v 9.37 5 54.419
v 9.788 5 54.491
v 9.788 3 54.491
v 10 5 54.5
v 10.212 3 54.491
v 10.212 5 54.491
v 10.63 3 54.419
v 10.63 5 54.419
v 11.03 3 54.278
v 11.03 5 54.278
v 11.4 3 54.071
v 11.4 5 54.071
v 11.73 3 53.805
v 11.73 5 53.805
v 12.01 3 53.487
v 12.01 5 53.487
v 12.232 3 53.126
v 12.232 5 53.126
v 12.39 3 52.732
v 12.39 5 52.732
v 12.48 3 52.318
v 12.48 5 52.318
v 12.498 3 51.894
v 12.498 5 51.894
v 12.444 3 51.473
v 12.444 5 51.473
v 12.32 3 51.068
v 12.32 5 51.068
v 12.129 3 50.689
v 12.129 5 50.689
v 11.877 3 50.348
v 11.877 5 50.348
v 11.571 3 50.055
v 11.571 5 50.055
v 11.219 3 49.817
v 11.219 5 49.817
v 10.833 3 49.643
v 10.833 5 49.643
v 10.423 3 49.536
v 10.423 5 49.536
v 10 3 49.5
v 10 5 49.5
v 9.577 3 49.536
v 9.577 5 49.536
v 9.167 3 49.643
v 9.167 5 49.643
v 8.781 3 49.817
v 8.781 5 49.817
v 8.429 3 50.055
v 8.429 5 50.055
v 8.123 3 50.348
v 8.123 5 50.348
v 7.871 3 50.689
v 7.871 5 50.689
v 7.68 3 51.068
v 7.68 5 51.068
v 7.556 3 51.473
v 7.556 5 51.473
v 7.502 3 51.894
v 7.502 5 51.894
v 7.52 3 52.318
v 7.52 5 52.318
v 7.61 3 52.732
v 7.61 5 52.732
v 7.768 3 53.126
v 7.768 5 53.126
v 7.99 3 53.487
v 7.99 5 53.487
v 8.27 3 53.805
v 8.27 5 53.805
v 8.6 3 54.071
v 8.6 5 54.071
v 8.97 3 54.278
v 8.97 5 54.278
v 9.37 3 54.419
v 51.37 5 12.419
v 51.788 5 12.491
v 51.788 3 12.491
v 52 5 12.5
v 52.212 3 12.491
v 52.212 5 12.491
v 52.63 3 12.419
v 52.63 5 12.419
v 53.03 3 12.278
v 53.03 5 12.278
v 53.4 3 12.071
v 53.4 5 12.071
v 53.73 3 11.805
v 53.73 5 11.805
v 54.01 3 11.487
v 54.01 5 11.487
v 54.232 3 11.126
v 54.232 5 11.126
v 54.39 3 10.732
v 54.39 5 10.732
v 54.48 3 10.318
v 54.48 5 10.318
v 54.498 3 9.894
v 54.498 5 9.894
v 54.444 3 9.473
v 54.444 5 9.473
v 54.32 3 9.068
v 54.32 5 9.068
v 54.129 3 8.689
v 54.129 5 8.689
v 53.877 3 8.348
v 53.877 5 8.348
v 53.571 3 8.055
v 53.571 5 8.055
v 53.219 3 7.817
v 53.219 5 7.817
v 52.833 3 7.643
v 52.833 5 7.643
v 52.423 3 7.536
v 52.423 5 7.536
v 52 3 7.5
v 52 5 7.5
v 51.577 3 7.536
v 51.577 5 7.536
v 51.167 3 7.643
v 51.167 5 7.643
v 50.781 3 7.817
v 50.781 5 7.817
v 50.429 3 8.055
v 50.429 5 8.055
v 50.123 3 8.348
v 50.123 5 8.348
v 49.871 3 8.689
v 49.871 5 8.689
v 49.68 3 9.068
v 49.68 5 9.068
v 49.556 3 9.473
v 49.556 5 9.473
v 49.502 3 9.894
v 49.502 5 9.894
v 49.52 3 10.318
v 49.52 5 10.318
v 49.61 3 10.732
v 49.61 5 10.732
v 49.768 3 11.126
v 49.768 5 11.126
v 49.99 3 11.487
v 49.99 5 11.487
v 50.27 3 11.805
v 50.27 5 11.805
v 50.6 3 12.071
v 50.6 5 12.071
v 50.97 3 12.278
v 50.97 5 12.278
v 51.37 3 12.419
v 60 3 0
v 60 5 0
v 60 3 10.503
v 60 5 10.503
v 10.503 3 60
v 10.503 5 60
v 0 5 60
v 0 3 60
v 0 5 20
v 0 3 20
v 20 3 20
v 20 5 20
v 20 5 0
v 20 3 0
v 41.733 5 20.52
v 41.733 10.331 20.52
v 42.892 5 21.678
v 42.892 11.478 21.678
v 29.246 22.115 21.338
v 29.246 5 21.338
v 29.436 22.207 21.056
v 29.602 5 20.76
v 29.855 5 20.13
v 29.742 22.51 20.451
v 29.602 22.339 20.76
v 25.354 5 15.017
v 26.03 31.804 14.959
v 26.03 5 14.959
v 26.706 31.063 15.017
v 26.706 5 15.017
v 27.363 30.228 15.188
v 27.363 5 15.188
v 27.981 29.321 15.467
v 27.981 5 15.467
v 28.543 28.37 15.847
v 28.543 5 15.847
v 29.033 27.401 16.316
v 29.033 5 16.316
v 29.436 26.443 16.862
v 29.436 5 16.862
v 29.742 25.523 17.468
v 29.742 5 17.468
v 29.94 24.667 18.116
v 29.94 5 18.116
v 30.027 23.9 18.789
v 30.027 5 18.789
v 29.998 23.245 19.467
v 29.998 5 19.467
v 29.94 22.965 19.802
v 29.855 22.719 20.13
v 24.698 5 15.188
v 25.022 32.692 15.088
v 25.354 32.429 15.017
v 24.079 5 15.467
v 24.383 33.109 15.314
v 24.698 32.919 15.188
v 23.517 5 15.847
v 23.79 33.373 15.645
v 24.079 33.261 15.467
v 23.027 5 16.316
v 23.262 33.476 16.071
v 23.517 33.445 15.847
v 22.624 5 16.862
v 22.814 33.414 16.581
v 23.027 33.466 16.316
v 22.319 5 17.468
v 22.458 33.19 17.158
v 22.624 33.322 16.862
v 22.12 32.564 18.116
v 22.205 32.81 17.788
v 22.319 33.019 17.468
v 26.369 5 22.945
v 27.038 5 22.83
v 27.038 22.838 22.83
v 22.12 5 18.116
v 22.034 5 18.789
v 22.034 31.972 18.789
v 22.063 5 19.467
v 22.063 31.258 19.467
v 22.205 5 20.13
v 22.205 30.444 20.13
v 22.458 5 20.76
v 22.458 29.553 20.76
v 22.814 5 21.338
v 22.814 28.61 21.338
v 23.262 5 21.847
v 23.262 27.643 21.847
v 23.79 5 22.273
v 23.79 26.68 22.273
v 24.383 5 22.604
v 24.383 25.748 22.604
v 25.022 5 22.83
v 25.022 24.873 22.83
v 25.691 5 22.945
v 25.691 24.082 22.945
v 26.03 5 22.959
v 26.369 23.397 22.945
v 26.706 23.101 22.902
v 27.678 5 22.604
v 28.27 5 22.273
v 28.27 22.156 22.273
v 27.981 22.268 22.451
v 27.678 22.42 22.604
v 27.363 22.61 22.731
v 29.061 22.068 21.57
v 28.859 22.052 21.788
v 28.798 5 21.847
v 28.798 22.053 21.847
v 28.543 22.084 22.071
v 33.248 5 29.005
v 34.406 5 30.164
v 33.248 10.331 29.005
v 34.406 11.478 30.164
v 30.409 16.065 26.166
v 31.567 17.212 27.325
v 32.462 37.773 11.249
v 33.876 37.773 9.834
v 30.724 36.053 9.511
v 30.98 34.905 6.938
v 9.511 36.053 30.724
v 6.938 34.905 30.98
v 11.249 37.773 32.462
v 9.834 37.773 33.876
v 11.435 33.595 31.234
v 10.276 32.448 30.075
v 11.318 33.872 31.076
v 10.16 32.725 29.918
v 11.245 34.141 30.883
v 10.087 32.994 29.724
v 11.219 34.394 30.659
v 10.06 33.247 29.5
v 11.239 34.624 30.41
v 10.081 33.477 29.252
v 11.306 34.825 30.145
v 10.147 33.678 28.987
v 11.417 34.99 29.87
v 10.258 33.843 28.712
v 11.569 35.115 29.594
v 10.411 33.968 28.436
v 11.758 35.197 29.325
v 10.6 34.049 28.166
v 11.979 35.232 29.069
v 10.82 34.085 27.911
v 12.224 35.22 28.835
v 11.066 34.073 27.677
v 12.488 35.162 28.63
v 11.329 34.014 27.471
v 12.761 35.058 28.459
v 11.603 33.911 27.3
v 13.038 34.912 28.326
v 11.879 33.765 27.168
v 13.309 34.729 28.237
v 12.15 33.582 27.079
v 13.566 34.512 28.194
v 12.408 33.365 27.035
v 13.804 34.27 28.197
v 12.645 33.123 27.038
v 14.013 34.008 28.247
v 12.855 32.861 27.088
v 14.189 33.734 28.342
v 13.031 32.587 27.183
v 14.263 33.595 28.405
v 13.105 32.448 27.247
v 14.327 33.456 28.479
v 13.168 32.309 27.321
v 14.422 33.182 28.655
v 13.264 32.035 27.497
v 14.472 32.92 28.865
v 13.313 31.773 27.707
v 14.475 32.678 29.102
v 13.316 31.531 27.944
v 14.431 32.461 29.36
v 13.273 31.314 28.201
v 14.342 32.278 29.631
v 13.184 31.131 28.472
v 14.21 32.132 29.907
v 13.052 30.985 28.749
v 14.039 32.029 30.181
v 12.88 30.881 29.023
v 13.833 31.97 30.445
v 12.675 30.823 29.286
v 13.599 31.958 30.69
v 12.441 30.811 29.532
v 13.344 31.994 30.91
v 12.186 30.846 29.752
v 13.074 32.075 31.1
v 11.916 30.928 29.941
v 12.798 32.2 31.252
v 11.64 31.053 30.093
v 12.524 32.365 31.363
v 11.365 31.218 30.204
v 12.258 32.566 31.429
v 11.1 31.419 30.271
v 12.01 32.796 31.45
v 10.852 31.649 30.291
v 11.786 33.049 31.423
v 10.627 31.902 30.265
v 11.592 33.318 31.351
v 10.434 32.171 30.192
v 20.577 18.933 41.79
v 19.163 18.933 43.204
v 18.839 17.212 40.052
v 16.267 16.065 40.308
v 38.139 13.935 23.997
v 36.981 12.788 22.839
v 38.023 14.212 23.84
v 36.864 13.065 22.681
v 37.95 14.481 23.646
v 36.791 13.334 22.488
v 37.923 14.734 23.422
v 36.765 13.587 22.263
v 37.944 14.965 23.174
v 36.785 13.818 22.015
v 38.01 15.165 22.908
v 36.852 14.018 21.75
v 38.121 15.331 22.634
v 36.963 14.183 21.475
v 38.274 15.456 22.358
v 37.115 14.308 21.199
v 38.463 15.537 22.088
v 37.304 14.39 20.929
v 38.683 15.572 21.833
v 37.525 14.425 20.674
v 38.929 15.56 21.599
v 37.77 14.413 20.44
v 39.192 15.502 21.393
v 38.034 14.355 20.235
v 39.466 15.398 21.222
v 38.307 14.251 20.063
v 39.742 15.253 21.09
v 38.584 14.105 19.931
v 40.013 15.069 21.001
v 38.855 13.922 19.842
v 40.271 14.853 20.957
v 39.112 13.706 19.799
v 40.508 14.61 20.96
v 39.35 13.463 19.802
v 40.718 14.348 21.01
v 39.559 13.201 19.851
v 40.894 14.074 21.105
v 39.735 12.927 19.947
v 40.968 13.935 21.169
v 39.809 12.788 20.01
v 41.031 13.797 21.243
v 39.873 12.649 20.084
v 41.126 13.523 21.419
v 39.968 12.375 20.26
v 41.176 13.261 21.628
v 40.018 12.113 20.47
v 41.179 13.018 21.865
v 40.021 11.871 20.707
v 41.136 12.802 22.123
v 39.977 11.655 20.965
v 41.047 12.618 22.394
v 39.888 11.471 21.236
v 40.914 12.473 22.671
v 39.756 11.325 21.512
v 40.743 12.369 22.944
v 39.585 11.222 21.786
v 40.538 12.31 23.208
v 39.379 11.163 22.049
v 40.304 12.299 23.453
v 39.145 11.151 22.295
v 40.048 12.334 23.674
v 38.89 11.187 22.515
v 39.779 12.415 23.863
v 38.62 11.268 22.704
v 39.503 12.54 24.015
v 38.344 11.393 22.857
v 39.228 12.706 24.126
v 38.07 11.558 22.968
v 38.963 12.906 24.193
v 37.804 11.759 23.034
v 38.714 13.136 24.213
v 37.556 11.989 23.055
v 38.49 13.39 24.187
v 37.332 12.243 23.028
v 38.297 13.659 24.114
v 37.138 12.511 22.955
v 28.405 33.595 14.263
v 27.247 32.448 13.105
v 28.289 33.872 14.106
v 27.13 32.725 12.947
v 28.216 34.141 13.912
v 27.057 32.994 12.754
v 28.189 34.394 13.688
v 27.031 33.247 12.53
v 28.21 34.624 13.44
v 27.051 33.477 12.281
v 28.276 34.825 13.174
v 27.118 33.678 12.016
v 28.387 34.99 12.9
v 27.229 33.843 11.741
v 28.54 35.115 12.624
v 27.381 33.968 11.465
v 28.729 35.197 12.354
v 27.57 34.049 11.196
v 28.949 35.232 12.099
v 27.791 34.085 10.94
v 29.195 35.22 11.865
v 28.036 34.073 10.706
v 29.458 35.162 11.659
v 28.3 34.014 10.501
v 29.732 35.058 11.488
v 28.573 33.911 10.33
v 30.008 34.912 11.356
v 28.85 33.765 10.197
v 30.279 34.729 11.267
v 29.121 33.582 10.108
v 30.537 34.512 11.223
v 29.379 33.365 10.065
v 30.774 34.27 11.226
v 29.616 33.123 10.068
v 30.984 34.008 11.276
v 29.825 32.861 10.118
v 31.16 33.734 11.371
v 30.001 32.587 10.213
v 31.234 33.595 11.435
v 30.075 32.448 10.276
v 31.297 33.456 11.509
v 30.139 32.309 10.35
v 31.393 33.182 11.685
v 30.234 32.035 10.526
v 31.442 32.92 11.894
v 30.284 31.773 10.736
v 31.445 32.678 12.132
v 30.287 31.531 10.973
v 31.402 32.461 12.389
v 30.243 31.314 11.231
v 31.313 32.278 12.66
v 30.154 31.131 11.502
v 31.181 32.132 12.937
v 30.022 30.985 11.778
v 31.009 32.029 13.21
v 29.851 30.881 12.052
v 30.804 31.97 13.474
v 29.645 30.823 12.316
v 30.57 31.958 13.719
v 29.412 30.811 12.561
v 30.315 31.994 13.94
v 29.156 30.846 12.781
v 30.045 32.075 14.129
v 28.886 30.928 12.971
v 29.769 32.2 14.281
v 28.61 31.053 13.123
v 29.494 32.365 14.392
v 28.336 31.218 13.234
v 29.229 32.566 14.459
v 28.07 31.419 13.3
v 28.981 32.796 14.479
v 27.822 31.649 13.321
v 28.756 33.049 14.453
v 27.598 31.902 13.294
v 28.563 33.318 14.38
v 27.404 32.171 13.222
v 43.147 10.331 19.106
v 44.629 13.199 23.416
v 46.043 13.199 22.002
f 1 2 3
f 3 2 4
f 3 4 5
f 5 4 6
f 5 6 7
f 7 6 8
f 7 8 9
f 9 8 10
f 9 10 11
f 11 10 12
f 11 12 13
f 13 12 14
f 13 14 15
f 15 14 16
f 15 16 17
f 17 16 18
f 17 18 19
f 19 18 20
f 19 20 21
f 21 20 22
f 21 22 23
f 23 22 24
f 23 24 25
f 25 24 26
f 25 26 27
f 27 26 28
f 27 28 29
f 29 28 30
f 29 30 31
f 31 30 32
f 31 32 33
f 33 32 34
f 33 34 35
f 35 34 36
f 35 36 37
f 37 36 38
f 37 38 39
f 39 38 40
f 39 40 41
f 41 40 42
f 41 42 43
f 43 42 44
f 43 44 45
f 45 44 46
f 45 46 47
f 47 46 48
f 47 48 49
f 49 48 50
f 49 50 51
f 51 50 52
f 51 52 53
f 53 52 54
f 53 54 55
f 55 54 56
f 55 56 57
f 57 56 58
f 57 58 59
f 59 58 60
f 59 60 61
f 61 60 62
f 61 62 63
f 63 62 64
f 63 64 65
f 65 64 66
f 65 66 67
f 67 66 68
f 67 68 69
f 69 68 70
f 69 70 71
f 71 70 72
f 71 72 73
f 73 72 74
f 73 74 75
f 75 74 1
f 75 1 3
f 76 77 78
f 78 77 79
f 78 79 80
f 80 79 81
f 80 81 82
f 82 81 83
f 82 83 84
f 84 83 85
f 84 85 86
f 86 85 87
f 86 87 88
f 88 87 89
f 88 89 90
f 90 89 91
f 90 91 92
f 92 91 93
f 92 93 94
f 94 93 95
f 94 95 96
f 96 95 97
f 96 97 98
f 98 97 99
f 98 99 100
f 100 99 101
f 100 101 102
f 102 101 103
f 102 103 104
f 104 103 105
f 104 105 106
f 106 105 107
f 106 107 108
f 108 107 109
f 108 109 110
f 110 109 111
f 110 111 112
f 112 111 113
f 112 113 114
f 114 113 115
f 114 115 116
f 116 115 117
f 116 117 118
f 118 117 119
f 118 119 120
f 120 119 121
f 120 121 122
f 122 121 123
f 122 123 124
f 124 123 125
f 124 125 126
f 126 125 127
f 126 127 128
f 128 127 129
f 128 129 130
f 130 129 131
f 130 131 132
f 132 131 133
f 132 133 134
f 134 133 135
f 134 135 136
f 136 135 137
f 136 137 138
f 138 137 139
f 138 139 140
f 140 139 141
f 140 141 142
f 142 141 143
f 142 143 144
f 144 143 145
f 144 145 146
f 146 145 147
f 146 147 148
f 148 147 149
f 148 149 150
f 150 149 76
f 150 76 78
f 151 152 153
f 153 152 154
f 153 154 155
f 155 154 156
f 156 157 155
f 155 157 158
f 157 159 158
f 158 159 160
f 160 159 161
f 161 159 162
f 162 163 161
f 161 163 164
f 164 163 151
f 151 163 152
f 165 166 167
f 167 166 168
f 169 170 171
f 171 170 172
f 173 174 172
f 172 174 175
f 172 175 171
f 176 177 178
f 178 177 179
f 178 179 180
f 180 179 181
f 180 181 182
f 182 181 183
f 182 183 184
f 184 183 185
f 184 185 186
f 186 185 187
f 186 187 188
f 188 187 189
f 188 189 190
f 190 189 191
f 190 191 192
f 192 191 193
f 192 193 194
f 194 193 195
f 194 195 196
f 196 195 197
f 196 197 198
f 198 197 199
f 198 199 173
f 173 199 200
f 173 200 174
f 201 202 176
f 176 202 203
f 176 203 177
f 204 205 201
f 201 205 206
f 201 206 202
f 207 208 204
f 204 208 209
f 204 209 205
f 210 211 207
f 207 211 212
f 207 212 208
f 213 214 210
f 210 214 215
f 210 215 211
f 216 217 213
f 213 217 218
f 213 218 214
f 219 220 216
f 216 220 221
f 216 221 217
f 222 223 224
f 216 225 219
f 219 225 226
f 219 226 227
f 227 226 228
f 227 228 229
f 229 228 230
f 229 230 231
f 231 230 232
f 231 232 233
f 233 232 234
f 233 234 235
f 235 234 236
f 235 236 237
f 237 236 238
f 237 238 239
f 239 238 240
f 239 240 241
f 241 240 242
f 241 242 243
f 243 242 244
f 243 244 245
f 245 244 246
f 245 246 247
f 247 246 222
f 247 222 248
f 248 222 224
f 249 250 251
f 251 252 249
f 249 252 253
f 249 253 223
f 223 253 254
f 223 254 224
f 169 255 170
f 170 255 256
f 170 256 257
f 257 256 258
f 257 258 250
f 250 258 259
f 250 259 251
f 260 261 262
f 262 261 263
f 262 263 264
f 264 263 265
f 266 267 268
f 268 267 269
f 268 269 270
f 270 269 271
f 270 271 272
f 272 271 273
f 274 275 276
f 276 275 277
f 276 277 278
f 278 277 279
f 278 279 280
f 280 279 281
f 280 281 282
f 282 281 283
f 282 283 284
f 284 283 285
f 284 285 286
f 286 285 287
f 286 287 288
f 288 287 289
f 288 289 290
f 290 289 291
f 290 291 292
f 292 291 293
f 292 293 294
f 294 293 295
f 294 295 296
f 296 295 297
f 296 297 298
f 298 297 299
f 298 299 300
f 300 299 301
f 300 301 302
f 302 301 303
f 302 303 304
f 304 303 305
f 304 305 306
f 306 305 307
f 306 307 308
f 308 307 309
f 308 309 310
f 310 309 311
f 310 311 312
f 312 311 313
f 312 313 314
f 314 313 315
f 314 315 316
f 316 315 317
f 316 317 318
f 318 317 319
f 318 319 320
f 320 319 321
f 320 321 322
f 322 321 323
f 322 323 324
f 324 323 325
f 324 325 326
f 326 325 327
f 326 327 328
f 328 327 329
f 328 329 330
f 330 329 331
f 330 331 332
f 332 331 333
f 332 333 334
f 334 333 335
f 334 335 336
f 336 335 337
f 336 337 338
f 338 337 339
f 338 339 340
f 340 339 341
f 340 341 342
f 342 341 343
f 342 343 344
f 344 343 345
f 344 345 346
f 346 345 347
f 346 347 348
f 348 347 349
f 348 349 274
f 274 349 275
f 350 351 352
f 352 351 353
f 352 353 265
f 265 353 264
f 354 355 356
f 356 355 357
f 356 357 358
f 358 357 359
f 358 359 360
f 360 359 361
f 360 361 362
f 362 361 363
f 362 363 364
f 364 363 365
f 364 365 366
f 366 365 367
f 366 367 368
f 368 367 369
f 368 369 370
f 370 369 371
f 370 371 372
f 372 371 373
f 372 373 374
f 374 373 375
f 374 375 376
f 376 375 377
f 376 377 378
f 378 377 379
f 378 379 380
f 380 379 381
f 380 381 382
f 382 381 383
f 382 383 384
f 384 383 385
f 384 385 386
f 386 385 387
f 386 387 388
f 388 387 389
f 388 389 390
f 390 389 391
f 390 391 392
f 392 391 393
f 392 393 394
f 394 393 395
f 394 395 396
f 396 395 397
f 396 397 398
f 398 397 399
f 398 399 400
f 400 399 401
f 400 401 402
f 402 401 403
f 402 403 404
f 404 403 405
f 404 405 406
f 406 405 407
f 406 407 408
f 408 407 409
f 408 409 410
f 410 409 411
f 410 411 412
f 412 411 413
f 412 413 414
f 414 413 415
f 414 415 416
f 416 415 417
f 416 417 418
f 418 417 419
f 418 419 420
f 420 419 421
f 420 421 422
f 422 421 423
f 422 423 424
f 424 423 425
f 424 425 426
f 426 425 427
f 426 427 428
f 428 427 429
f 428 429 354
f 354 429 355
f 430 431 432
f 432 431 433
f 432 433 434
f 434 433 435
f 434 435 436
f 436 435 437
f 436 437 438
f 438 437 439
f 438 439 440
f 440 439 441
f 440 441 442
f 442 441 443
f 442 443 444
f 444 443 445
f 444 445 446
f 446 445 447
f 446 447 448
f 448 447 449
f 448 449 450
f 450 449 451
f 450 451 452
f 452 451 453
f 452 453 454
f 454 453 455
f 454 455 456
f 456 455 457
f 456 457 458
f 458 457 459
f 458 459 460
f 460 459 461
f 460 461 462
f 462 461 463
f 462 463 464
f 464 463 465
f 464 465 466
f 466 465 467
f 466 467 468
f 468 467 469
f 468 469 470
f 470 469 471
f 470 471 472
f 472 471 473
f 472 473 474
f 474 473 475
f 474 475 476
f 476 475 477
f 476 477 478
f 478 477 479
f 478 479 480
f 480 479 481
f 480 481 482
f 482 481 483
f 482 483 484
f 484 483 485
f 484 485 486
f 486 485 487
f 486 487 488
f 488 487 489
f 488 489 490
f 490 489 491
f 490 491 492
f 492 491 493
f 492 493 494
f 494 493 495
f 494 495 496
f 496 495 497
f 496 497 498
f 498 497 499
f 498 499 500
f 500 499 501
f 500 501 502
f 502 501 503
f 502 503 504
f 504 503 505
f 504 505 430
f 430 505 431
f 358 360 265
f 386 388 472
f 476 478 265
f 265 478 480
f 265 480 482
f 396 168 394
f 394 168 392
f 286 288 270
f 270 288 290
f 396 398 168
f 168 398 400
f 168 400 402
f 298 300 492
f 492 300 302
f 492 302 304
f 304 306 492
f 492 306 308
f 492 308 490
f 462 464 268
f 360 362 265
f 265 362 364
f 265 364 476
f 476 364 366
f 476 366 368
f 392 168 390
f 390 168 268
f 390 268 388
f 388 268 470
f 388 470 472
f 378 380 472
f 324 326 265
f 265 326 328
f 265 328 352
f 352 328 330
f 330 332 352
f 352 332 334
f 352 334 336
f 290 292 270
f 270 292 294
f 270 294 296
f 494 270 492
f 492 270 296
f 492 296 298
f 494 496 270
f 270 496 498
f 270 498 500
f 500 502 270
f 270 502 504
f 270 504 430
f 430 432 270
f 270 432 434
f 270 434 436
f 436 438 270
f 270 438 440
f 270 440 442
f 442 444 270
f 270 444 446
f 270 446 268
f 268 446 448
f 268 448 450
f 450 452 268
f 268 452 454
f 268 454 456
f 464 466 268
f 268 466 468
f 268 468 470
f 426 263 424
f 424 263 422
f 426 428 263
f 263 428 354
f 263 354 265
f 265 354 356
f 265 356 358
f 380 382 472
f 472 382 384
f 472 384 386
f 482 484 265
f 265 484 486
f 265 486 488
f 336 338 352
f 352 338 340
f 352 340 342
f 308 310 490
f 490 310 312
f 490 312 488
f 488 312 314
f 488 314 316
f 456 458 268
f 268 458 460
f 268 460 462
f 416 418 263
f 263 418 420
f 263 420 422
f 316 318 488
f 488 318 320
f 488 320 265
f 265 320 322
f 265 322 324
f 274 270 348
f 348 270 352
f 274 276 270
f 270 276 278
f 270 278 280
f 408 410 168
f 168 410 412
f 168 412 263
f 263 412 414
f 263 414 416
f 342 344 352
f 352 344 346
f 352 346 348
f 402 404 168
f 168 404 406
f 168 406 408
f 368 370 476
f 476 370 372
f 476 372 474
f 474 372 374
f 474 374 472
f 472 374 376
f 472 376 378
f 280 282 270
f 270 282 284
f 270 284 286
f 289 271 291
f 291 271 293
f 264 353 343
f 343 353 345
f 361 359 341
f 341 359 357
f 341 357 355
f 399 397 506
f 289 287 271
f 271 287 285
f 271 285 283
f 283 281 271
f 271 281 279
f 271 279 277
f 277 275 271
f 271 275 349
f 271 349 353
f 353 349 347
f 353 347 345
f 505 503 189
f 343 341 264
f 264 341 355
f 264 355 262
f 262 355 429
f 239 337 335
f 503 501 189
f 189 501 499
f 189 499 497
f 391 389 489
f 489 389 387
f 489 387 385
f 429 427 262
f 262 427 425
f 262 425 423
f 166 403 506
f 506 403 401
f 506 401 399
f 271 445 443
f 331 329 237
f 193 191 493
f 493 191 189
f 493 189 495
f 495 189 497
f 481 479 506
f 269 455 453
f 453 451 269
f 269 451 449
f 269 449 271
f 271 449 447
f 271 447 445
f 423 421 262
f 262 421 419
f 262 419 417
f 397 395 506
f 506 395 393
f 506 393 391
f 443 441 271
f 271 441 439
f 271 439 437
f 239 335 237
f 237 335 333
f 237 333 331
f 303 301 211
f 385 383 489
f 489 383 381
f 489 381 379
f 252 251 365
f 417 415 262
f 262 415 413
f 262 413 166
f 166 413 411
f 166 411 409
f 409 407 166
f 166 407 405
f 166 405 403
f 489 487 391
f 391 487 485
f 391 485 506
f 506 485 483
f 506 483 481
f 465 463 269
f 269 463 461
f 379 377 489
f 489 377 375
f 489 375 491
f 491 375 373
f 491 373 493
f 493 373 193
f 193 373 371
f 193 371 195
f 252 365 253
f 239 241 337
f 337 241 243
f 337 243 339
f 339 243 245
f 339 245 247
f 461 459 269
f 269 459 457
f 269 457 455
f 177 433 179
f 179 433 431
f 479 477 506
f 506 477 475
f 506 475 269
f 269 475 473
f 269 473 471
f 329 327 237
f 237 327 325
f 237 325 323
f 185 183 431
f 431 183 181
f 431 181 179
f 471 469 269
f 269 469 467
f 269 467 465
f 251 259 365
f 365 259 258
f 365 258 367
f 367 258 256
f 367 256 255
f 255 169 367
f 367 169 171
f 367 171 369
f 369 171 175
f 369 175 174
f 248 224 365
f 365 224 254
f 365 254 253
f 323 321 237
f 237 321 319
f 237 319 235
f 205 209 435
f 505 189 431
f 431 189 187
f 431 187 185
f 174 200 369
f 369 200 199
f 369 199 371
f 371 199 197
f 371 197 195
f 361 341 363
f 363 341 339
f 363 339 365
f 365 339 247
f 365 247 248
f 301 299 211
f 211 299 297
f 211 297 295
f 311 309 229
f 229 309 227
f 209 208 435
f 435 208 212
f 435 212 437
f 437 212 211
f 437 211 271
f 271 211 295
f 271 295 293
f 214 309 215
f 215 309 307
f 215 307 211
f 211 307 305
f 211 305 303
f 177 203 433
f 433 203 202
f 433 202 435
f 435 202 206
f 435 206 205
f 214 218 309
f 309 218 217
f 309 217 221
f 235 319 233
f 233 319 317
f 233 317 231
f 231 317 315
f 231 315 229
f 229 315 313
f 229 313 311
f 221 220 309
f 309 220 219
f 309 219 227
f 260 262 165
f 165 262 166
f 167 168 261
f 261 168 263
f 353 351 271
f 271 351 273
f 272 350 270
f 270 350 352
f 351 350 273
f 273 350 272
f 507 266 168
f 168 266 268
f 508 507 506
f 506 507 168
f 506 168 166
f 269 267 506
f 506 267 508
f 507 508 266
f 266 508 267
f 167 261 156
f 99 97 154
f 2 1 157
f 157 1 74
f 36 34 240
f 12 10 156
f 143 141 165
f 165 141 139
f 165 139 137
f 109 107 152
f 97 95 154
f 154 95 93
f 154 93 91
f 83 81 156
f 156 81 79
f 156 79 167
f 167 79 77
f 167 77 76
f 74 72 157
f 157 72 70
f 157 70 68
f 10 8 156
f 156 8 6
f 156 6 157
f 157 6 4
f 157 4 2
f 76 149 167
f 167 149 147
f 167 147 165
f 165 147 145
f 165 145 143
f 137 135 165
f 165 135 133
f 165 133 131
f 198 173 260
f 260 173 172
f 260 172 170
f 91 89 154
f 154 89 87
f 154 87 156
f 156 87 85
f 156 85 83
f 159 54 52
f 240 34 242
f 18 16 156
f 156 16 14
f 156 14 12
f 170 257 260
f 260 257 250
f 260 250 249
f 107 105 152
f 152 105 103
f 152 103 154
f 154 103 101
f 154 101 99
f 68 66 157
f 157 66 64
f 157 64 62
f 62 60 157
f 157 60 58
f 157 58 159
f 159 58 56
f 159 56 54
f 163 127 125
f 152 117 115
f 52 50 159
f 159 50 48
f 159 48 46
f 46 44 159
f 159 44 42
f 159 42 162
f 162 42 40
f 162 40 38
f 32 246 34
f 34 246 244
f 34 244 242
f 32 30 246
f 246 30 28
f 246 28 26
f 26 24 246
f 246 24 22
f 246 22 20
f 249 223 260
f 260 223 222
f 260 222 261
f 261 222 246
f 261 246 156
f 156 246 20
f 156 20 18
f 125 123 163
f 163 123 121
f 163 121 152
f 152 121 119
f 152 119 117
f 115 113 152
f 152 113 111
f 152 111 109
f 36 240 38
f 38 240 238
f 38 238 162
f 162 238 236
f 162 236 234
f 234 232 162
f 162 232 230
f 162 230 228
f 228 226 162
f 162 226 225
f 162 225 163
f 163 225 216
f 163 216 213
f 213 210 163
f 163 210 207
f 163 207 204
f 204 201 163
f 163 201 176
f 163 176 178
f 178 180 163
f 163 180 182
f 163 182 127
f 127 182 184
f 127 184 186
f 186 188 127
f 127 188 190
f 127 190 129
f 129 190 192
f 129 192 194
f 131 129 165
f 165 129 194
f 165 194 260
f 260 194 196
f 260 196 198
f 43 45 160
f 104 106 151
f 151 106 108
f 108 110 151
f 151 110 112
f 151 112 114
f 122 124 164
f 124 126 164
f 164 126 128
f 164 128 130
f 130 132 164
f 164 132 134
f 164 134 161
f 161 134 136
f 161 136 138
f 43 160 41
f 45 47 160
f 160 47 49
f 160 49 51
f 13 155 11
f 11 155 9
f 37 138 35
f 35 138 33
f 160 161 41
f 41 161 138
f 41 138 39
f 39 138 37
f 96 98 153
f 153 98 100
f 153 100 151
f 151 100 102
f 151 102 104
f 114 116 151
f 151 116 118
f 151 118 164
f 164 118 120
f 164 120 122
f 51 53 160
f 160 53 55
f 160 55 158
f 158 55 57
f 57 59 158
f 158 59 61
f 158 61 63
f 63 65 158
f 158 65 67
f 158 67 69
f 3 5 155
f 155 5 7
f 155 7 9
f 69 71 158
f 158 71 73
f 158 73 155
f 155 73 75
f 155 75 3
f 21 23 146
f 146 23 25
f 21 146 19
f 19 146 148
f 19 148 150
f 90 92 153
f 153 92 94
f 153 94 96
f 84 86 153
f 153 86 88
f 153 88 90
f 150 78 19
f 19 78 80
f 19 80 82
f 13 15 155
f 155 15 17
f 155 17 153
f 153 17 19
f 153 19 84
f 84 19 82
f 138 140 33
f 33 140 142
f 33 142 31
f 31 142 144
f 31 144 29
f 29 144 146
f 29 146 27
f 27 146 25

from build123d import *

# Parameters (mm, degrees)
SKETCH_1_R                  = 2.5
EXTRUDE_1_DEPTH             = 2
SKETCH_2_R                  = 2
EXTRUDE_3_DEPTH             = 2
EXTRUDE_4_REACH             = 93.431
SKETCH_4_R                  = 4
EXTRUDE_5_REACH             = 93.431
EXTRUDE_6_REACH             = 56.956
EXTRUDE_6_DIRECTION_2_DEPTH = 3
SKETCH_7_R                  = 2.5
EXTRUDE_8_DEPTH             = 3
CUT_EXTRUDE_1_DEPTH         = 3


with BuildPart() as part:
    # 草图1 → 凸台-拉伸1 (new body)
    with BuildSketch(Plane(origin=(0, 0, 0), x_dir=(1, 0, 0), z_dir=(0, 1, 0))):
        Polygon((10.502525317, -60), (60, -10.502525317), (60, 0), (20, 0), (20, -20), (0, -20), (0, -60), align=None)
        with Locations(Location((10, -52, 0), (0, 0, 270))):
            Circle(SKETCH_1_R, mode=Mode.SUBTRACT)
        with Locations(Location((52, -10, 0), (0, 0, 270))):
            Circle(SKETCH_1_R, mode=Mode.SUBTRACT)
    extrude(amount=EXTRUDE_1_DEPTH)



with BuildPart() as body_2:
    # 草图2 → 凸台-拉伸3 (new body)
    with BuildSketch(Plane(origin=(24.318415307, 24.081140456, 24.318415307), x_dir=(-0.7071067811865475, 0, 0.7071067811865476), z_dir=(0.5792279653395701, 0.5735764363510444, 0.57922796533957))):
        Polygon((-3, 16.786030205), (-15, 16.786030205), (-15, -13.213969795), (15, -13.213969795), (15, 9.786030205), (-3, 9.786030205), align=None)
        with Locations(Location((-12, -10.213969795, 0), (0, 0, 180))):
            Circle(SKETCH_2_R, mode=Mode.SUBTRACT)
        with Locations(Location((12, -10.213969795, 0), (0, 0, 180))):
            Circle(SKETCH_2_R, mode=Mode.SUBTRACT)
        with Locations(Location((-12, 13.786030205, 0), (0, 0, 180))):
            Circle(SKETCH_2_R, mode=Mode.SUBTRACT)
    extrude(amount=EXTRUDE_3_DEPTH)


with BuildPart() as part_1:
    add(part.part)

    add(body_2.part)  # 凸台-拉伸4 merges body 2
    # 凸台-拉伸4: up to this plane
    extrude_4_end = Plane(origin=(24.318415307, 24.081140456, 24.318415307), z_dir=(0.5792279653395702, 0.5735764363510445, 0.5792279653395699))
    # 草图4 → 凸台-拉伸4 (add, up to the surface)
    with BuildSketch(Plane(origin=(0, 2, 0), x_dir=(1, 0, 0), z_dir=(0, 1, 0)), mode=Mode.PRIVATE) as extrude_4_sk1:
        with Locations(Location((26.030164055, -18.959096243, 0), (0, 0, 315))):
            Circle(SKETCH_4_R)
    extrude_4_tool1 = split(extrude(extrude_4_sk1.sketch, amount=EXTRUDE_4_REACH, mode=Mode.PRIVATE), bisect_by=extrude_4_end, keep=Keep.BOTH, mode=Mode.PRIVATE)
    add(extrude_4_tool1.solids().sort_by_distance((26.030164, 2, 18.959096))[0])

    # 草图5 → 凸台-拉伸5 (add, up to next)
    with BuildSketch(Plane(origin=(0, 2, 0), x_dir=(1, 0, 0), z_dir=(0, 1, 0)), mode=Mode.PRIVATE) as extrude_5_sk1:
        Polygon((41.733091591, -20.519888156), (33.247810217, -29.00516953), (34.406266148, -30.16362546), (42.891547522, -21.678344086), align=None)
    extrude_5_tool1 = extrude(extrude_5_sk1.sketch, amount=EXTRUDE_5_REACH, mode=Mode.PRIVATE) - part_1.part
    add(extrude_5_tool1.solids().sort_by_distance((38.069679, 2, 25.341757))[0])

    # 凸台-拉伸6: up to this face of the body (flat: up to its plane)
    extrude_6_end = Plane(part_1.part.faces().sort_by_distance((24.757422588, 23.562214363, 24.393270957))[0])
    # 草图6 → 凸台-拉伸6 (add, up to the picked face)
    with BuildSketch(Plane(origin=(25.476871238, 25.228293329, 25.476871238), x_dir=(0.45107473692648714, 0.36633593098762024, -0.8138363271408656), z_dir=(0.5792279653395703, 0.5735764363510442, 0.5792279653395701)), mode=Mode.PRIVATE) as extrude_6_sk1:
        Polygon((-7.506940922, 18.527137818), (-17.792853619, -2.044687575), (-19.581708001, -1.150260384), (-9.295795304, 19.421565009), align=None)
    extrude_6_tool1 = split(extrude(extrude_6_sk1.sketch, amount=-EXTRUDE_6_REACH, mode=Mode.PRIVATE), bisect_by=extrude_6_end, keep=Keep.BOTH, mode=Mode.PRIVATE)
    # 草图6 → 凸台-拉伸6 (add, up to the picked face)
    with BuildSketch(Plane(origin=(25.476871238, 25.228293329, 25.476871238), x_dir=(0.45107473692648714, 0.36633593098762024, -0.8138363271408656), z_dir=(0.5792279653395703, 0.5735764363510442, 0.5792279653395701)), mode=Mode.PRIVATE) as extrude_6_sk2:
        Polygon((19.325874808, 5.110729953), (5.909466943, -21.722085777), (7.698321325, -22.616512968), (21.11472919, 4.216302762), align=None)
    extrude_6_tool2 = split(extrude(extrude_6_sk2.sketch, amount=-EXTRUDE_6_REACH, mode=Mode.PRIVATE), bisect_by=extrude_6_end, keep=Keep.BOTH, mode=Mode.PRIVATE)
    add(extrude_6_tool1.solids().sort_by(Axis((13.468011, 26.632295, 36.095428), (-0.5792279653395703, -0.5735764363510442, -0.5792279653395701)))[0])
    add(extrude_6_tool2.solids().sort_by(Axis((37.514957, 23.765263, 14.88754), (-0.5792279653395703, -0.5735764363510442, -0.5792279653395701)))[0])

    # 草图6 → 凸台-拉伸6 direction 2 (add)
    with BuildSketch(Plane(origin=(25.476871238, 25.228293329, 25.476871238), x_dir=(0.45107473692648714, 0.36633593098762024, -0.8138363271408656), z_dir=(0.5792279653395703, 0.5735764363510442, 0.5792279653395701))):
        Polygon((-7.506940922, 18.527137818), (-17.792853619, -2.044687575), (-19.581708001, -1.150260384), (-9.295795304, 19.421565009), align=None)
        Polygon((19.325874808, 5.110729953), (5.909466943, -21.722085777), (7.698321325, -22.616512968), (21.11472919, 4.216302762), align=None)
    extrude(amount=EXTRUDE_6_DIRECTION_2_DEPTH)

    # 草图7 → 凸台-拉伸8 (add)
    with BuildSketch(Plane(origin=(0, 2, 0), x_dir=(1, 0, 0), z_dir=(0, 1, 0))):
        Polygon((60, 0), (20, 0), (20, -20), (0, -20), (0, -60), (10.502525317, -60), (60, -10.502525317), align=None)
        with Locations(Location((10, -52, 0), (0, 0, 270))):
            Circle(SKETCH_7_R, mode=Mode.SUBTRACT)
        with Locations(Location((52, -10, 0), (0, 0, 270))):
            Circle(SKETCH_7_R, mode=Mode.SUBTRACT)
    extrude(amount=EXTRUDE_8_DEPTH)

    # 草图10 → 切除-拉伸1 (cut)
    with BuildSketch(Plane.XZ):
        Polygon((20, 0), (60, 0), (60, 10.502525317), (10.502525317, 60), (0, 60), (0, 20), (20, 20), align=None)
    extrude(amount=-CUT_EXTRUDE_1_DEPTH, mode=Mode.SUBTRACT)


solid = part_1.part
